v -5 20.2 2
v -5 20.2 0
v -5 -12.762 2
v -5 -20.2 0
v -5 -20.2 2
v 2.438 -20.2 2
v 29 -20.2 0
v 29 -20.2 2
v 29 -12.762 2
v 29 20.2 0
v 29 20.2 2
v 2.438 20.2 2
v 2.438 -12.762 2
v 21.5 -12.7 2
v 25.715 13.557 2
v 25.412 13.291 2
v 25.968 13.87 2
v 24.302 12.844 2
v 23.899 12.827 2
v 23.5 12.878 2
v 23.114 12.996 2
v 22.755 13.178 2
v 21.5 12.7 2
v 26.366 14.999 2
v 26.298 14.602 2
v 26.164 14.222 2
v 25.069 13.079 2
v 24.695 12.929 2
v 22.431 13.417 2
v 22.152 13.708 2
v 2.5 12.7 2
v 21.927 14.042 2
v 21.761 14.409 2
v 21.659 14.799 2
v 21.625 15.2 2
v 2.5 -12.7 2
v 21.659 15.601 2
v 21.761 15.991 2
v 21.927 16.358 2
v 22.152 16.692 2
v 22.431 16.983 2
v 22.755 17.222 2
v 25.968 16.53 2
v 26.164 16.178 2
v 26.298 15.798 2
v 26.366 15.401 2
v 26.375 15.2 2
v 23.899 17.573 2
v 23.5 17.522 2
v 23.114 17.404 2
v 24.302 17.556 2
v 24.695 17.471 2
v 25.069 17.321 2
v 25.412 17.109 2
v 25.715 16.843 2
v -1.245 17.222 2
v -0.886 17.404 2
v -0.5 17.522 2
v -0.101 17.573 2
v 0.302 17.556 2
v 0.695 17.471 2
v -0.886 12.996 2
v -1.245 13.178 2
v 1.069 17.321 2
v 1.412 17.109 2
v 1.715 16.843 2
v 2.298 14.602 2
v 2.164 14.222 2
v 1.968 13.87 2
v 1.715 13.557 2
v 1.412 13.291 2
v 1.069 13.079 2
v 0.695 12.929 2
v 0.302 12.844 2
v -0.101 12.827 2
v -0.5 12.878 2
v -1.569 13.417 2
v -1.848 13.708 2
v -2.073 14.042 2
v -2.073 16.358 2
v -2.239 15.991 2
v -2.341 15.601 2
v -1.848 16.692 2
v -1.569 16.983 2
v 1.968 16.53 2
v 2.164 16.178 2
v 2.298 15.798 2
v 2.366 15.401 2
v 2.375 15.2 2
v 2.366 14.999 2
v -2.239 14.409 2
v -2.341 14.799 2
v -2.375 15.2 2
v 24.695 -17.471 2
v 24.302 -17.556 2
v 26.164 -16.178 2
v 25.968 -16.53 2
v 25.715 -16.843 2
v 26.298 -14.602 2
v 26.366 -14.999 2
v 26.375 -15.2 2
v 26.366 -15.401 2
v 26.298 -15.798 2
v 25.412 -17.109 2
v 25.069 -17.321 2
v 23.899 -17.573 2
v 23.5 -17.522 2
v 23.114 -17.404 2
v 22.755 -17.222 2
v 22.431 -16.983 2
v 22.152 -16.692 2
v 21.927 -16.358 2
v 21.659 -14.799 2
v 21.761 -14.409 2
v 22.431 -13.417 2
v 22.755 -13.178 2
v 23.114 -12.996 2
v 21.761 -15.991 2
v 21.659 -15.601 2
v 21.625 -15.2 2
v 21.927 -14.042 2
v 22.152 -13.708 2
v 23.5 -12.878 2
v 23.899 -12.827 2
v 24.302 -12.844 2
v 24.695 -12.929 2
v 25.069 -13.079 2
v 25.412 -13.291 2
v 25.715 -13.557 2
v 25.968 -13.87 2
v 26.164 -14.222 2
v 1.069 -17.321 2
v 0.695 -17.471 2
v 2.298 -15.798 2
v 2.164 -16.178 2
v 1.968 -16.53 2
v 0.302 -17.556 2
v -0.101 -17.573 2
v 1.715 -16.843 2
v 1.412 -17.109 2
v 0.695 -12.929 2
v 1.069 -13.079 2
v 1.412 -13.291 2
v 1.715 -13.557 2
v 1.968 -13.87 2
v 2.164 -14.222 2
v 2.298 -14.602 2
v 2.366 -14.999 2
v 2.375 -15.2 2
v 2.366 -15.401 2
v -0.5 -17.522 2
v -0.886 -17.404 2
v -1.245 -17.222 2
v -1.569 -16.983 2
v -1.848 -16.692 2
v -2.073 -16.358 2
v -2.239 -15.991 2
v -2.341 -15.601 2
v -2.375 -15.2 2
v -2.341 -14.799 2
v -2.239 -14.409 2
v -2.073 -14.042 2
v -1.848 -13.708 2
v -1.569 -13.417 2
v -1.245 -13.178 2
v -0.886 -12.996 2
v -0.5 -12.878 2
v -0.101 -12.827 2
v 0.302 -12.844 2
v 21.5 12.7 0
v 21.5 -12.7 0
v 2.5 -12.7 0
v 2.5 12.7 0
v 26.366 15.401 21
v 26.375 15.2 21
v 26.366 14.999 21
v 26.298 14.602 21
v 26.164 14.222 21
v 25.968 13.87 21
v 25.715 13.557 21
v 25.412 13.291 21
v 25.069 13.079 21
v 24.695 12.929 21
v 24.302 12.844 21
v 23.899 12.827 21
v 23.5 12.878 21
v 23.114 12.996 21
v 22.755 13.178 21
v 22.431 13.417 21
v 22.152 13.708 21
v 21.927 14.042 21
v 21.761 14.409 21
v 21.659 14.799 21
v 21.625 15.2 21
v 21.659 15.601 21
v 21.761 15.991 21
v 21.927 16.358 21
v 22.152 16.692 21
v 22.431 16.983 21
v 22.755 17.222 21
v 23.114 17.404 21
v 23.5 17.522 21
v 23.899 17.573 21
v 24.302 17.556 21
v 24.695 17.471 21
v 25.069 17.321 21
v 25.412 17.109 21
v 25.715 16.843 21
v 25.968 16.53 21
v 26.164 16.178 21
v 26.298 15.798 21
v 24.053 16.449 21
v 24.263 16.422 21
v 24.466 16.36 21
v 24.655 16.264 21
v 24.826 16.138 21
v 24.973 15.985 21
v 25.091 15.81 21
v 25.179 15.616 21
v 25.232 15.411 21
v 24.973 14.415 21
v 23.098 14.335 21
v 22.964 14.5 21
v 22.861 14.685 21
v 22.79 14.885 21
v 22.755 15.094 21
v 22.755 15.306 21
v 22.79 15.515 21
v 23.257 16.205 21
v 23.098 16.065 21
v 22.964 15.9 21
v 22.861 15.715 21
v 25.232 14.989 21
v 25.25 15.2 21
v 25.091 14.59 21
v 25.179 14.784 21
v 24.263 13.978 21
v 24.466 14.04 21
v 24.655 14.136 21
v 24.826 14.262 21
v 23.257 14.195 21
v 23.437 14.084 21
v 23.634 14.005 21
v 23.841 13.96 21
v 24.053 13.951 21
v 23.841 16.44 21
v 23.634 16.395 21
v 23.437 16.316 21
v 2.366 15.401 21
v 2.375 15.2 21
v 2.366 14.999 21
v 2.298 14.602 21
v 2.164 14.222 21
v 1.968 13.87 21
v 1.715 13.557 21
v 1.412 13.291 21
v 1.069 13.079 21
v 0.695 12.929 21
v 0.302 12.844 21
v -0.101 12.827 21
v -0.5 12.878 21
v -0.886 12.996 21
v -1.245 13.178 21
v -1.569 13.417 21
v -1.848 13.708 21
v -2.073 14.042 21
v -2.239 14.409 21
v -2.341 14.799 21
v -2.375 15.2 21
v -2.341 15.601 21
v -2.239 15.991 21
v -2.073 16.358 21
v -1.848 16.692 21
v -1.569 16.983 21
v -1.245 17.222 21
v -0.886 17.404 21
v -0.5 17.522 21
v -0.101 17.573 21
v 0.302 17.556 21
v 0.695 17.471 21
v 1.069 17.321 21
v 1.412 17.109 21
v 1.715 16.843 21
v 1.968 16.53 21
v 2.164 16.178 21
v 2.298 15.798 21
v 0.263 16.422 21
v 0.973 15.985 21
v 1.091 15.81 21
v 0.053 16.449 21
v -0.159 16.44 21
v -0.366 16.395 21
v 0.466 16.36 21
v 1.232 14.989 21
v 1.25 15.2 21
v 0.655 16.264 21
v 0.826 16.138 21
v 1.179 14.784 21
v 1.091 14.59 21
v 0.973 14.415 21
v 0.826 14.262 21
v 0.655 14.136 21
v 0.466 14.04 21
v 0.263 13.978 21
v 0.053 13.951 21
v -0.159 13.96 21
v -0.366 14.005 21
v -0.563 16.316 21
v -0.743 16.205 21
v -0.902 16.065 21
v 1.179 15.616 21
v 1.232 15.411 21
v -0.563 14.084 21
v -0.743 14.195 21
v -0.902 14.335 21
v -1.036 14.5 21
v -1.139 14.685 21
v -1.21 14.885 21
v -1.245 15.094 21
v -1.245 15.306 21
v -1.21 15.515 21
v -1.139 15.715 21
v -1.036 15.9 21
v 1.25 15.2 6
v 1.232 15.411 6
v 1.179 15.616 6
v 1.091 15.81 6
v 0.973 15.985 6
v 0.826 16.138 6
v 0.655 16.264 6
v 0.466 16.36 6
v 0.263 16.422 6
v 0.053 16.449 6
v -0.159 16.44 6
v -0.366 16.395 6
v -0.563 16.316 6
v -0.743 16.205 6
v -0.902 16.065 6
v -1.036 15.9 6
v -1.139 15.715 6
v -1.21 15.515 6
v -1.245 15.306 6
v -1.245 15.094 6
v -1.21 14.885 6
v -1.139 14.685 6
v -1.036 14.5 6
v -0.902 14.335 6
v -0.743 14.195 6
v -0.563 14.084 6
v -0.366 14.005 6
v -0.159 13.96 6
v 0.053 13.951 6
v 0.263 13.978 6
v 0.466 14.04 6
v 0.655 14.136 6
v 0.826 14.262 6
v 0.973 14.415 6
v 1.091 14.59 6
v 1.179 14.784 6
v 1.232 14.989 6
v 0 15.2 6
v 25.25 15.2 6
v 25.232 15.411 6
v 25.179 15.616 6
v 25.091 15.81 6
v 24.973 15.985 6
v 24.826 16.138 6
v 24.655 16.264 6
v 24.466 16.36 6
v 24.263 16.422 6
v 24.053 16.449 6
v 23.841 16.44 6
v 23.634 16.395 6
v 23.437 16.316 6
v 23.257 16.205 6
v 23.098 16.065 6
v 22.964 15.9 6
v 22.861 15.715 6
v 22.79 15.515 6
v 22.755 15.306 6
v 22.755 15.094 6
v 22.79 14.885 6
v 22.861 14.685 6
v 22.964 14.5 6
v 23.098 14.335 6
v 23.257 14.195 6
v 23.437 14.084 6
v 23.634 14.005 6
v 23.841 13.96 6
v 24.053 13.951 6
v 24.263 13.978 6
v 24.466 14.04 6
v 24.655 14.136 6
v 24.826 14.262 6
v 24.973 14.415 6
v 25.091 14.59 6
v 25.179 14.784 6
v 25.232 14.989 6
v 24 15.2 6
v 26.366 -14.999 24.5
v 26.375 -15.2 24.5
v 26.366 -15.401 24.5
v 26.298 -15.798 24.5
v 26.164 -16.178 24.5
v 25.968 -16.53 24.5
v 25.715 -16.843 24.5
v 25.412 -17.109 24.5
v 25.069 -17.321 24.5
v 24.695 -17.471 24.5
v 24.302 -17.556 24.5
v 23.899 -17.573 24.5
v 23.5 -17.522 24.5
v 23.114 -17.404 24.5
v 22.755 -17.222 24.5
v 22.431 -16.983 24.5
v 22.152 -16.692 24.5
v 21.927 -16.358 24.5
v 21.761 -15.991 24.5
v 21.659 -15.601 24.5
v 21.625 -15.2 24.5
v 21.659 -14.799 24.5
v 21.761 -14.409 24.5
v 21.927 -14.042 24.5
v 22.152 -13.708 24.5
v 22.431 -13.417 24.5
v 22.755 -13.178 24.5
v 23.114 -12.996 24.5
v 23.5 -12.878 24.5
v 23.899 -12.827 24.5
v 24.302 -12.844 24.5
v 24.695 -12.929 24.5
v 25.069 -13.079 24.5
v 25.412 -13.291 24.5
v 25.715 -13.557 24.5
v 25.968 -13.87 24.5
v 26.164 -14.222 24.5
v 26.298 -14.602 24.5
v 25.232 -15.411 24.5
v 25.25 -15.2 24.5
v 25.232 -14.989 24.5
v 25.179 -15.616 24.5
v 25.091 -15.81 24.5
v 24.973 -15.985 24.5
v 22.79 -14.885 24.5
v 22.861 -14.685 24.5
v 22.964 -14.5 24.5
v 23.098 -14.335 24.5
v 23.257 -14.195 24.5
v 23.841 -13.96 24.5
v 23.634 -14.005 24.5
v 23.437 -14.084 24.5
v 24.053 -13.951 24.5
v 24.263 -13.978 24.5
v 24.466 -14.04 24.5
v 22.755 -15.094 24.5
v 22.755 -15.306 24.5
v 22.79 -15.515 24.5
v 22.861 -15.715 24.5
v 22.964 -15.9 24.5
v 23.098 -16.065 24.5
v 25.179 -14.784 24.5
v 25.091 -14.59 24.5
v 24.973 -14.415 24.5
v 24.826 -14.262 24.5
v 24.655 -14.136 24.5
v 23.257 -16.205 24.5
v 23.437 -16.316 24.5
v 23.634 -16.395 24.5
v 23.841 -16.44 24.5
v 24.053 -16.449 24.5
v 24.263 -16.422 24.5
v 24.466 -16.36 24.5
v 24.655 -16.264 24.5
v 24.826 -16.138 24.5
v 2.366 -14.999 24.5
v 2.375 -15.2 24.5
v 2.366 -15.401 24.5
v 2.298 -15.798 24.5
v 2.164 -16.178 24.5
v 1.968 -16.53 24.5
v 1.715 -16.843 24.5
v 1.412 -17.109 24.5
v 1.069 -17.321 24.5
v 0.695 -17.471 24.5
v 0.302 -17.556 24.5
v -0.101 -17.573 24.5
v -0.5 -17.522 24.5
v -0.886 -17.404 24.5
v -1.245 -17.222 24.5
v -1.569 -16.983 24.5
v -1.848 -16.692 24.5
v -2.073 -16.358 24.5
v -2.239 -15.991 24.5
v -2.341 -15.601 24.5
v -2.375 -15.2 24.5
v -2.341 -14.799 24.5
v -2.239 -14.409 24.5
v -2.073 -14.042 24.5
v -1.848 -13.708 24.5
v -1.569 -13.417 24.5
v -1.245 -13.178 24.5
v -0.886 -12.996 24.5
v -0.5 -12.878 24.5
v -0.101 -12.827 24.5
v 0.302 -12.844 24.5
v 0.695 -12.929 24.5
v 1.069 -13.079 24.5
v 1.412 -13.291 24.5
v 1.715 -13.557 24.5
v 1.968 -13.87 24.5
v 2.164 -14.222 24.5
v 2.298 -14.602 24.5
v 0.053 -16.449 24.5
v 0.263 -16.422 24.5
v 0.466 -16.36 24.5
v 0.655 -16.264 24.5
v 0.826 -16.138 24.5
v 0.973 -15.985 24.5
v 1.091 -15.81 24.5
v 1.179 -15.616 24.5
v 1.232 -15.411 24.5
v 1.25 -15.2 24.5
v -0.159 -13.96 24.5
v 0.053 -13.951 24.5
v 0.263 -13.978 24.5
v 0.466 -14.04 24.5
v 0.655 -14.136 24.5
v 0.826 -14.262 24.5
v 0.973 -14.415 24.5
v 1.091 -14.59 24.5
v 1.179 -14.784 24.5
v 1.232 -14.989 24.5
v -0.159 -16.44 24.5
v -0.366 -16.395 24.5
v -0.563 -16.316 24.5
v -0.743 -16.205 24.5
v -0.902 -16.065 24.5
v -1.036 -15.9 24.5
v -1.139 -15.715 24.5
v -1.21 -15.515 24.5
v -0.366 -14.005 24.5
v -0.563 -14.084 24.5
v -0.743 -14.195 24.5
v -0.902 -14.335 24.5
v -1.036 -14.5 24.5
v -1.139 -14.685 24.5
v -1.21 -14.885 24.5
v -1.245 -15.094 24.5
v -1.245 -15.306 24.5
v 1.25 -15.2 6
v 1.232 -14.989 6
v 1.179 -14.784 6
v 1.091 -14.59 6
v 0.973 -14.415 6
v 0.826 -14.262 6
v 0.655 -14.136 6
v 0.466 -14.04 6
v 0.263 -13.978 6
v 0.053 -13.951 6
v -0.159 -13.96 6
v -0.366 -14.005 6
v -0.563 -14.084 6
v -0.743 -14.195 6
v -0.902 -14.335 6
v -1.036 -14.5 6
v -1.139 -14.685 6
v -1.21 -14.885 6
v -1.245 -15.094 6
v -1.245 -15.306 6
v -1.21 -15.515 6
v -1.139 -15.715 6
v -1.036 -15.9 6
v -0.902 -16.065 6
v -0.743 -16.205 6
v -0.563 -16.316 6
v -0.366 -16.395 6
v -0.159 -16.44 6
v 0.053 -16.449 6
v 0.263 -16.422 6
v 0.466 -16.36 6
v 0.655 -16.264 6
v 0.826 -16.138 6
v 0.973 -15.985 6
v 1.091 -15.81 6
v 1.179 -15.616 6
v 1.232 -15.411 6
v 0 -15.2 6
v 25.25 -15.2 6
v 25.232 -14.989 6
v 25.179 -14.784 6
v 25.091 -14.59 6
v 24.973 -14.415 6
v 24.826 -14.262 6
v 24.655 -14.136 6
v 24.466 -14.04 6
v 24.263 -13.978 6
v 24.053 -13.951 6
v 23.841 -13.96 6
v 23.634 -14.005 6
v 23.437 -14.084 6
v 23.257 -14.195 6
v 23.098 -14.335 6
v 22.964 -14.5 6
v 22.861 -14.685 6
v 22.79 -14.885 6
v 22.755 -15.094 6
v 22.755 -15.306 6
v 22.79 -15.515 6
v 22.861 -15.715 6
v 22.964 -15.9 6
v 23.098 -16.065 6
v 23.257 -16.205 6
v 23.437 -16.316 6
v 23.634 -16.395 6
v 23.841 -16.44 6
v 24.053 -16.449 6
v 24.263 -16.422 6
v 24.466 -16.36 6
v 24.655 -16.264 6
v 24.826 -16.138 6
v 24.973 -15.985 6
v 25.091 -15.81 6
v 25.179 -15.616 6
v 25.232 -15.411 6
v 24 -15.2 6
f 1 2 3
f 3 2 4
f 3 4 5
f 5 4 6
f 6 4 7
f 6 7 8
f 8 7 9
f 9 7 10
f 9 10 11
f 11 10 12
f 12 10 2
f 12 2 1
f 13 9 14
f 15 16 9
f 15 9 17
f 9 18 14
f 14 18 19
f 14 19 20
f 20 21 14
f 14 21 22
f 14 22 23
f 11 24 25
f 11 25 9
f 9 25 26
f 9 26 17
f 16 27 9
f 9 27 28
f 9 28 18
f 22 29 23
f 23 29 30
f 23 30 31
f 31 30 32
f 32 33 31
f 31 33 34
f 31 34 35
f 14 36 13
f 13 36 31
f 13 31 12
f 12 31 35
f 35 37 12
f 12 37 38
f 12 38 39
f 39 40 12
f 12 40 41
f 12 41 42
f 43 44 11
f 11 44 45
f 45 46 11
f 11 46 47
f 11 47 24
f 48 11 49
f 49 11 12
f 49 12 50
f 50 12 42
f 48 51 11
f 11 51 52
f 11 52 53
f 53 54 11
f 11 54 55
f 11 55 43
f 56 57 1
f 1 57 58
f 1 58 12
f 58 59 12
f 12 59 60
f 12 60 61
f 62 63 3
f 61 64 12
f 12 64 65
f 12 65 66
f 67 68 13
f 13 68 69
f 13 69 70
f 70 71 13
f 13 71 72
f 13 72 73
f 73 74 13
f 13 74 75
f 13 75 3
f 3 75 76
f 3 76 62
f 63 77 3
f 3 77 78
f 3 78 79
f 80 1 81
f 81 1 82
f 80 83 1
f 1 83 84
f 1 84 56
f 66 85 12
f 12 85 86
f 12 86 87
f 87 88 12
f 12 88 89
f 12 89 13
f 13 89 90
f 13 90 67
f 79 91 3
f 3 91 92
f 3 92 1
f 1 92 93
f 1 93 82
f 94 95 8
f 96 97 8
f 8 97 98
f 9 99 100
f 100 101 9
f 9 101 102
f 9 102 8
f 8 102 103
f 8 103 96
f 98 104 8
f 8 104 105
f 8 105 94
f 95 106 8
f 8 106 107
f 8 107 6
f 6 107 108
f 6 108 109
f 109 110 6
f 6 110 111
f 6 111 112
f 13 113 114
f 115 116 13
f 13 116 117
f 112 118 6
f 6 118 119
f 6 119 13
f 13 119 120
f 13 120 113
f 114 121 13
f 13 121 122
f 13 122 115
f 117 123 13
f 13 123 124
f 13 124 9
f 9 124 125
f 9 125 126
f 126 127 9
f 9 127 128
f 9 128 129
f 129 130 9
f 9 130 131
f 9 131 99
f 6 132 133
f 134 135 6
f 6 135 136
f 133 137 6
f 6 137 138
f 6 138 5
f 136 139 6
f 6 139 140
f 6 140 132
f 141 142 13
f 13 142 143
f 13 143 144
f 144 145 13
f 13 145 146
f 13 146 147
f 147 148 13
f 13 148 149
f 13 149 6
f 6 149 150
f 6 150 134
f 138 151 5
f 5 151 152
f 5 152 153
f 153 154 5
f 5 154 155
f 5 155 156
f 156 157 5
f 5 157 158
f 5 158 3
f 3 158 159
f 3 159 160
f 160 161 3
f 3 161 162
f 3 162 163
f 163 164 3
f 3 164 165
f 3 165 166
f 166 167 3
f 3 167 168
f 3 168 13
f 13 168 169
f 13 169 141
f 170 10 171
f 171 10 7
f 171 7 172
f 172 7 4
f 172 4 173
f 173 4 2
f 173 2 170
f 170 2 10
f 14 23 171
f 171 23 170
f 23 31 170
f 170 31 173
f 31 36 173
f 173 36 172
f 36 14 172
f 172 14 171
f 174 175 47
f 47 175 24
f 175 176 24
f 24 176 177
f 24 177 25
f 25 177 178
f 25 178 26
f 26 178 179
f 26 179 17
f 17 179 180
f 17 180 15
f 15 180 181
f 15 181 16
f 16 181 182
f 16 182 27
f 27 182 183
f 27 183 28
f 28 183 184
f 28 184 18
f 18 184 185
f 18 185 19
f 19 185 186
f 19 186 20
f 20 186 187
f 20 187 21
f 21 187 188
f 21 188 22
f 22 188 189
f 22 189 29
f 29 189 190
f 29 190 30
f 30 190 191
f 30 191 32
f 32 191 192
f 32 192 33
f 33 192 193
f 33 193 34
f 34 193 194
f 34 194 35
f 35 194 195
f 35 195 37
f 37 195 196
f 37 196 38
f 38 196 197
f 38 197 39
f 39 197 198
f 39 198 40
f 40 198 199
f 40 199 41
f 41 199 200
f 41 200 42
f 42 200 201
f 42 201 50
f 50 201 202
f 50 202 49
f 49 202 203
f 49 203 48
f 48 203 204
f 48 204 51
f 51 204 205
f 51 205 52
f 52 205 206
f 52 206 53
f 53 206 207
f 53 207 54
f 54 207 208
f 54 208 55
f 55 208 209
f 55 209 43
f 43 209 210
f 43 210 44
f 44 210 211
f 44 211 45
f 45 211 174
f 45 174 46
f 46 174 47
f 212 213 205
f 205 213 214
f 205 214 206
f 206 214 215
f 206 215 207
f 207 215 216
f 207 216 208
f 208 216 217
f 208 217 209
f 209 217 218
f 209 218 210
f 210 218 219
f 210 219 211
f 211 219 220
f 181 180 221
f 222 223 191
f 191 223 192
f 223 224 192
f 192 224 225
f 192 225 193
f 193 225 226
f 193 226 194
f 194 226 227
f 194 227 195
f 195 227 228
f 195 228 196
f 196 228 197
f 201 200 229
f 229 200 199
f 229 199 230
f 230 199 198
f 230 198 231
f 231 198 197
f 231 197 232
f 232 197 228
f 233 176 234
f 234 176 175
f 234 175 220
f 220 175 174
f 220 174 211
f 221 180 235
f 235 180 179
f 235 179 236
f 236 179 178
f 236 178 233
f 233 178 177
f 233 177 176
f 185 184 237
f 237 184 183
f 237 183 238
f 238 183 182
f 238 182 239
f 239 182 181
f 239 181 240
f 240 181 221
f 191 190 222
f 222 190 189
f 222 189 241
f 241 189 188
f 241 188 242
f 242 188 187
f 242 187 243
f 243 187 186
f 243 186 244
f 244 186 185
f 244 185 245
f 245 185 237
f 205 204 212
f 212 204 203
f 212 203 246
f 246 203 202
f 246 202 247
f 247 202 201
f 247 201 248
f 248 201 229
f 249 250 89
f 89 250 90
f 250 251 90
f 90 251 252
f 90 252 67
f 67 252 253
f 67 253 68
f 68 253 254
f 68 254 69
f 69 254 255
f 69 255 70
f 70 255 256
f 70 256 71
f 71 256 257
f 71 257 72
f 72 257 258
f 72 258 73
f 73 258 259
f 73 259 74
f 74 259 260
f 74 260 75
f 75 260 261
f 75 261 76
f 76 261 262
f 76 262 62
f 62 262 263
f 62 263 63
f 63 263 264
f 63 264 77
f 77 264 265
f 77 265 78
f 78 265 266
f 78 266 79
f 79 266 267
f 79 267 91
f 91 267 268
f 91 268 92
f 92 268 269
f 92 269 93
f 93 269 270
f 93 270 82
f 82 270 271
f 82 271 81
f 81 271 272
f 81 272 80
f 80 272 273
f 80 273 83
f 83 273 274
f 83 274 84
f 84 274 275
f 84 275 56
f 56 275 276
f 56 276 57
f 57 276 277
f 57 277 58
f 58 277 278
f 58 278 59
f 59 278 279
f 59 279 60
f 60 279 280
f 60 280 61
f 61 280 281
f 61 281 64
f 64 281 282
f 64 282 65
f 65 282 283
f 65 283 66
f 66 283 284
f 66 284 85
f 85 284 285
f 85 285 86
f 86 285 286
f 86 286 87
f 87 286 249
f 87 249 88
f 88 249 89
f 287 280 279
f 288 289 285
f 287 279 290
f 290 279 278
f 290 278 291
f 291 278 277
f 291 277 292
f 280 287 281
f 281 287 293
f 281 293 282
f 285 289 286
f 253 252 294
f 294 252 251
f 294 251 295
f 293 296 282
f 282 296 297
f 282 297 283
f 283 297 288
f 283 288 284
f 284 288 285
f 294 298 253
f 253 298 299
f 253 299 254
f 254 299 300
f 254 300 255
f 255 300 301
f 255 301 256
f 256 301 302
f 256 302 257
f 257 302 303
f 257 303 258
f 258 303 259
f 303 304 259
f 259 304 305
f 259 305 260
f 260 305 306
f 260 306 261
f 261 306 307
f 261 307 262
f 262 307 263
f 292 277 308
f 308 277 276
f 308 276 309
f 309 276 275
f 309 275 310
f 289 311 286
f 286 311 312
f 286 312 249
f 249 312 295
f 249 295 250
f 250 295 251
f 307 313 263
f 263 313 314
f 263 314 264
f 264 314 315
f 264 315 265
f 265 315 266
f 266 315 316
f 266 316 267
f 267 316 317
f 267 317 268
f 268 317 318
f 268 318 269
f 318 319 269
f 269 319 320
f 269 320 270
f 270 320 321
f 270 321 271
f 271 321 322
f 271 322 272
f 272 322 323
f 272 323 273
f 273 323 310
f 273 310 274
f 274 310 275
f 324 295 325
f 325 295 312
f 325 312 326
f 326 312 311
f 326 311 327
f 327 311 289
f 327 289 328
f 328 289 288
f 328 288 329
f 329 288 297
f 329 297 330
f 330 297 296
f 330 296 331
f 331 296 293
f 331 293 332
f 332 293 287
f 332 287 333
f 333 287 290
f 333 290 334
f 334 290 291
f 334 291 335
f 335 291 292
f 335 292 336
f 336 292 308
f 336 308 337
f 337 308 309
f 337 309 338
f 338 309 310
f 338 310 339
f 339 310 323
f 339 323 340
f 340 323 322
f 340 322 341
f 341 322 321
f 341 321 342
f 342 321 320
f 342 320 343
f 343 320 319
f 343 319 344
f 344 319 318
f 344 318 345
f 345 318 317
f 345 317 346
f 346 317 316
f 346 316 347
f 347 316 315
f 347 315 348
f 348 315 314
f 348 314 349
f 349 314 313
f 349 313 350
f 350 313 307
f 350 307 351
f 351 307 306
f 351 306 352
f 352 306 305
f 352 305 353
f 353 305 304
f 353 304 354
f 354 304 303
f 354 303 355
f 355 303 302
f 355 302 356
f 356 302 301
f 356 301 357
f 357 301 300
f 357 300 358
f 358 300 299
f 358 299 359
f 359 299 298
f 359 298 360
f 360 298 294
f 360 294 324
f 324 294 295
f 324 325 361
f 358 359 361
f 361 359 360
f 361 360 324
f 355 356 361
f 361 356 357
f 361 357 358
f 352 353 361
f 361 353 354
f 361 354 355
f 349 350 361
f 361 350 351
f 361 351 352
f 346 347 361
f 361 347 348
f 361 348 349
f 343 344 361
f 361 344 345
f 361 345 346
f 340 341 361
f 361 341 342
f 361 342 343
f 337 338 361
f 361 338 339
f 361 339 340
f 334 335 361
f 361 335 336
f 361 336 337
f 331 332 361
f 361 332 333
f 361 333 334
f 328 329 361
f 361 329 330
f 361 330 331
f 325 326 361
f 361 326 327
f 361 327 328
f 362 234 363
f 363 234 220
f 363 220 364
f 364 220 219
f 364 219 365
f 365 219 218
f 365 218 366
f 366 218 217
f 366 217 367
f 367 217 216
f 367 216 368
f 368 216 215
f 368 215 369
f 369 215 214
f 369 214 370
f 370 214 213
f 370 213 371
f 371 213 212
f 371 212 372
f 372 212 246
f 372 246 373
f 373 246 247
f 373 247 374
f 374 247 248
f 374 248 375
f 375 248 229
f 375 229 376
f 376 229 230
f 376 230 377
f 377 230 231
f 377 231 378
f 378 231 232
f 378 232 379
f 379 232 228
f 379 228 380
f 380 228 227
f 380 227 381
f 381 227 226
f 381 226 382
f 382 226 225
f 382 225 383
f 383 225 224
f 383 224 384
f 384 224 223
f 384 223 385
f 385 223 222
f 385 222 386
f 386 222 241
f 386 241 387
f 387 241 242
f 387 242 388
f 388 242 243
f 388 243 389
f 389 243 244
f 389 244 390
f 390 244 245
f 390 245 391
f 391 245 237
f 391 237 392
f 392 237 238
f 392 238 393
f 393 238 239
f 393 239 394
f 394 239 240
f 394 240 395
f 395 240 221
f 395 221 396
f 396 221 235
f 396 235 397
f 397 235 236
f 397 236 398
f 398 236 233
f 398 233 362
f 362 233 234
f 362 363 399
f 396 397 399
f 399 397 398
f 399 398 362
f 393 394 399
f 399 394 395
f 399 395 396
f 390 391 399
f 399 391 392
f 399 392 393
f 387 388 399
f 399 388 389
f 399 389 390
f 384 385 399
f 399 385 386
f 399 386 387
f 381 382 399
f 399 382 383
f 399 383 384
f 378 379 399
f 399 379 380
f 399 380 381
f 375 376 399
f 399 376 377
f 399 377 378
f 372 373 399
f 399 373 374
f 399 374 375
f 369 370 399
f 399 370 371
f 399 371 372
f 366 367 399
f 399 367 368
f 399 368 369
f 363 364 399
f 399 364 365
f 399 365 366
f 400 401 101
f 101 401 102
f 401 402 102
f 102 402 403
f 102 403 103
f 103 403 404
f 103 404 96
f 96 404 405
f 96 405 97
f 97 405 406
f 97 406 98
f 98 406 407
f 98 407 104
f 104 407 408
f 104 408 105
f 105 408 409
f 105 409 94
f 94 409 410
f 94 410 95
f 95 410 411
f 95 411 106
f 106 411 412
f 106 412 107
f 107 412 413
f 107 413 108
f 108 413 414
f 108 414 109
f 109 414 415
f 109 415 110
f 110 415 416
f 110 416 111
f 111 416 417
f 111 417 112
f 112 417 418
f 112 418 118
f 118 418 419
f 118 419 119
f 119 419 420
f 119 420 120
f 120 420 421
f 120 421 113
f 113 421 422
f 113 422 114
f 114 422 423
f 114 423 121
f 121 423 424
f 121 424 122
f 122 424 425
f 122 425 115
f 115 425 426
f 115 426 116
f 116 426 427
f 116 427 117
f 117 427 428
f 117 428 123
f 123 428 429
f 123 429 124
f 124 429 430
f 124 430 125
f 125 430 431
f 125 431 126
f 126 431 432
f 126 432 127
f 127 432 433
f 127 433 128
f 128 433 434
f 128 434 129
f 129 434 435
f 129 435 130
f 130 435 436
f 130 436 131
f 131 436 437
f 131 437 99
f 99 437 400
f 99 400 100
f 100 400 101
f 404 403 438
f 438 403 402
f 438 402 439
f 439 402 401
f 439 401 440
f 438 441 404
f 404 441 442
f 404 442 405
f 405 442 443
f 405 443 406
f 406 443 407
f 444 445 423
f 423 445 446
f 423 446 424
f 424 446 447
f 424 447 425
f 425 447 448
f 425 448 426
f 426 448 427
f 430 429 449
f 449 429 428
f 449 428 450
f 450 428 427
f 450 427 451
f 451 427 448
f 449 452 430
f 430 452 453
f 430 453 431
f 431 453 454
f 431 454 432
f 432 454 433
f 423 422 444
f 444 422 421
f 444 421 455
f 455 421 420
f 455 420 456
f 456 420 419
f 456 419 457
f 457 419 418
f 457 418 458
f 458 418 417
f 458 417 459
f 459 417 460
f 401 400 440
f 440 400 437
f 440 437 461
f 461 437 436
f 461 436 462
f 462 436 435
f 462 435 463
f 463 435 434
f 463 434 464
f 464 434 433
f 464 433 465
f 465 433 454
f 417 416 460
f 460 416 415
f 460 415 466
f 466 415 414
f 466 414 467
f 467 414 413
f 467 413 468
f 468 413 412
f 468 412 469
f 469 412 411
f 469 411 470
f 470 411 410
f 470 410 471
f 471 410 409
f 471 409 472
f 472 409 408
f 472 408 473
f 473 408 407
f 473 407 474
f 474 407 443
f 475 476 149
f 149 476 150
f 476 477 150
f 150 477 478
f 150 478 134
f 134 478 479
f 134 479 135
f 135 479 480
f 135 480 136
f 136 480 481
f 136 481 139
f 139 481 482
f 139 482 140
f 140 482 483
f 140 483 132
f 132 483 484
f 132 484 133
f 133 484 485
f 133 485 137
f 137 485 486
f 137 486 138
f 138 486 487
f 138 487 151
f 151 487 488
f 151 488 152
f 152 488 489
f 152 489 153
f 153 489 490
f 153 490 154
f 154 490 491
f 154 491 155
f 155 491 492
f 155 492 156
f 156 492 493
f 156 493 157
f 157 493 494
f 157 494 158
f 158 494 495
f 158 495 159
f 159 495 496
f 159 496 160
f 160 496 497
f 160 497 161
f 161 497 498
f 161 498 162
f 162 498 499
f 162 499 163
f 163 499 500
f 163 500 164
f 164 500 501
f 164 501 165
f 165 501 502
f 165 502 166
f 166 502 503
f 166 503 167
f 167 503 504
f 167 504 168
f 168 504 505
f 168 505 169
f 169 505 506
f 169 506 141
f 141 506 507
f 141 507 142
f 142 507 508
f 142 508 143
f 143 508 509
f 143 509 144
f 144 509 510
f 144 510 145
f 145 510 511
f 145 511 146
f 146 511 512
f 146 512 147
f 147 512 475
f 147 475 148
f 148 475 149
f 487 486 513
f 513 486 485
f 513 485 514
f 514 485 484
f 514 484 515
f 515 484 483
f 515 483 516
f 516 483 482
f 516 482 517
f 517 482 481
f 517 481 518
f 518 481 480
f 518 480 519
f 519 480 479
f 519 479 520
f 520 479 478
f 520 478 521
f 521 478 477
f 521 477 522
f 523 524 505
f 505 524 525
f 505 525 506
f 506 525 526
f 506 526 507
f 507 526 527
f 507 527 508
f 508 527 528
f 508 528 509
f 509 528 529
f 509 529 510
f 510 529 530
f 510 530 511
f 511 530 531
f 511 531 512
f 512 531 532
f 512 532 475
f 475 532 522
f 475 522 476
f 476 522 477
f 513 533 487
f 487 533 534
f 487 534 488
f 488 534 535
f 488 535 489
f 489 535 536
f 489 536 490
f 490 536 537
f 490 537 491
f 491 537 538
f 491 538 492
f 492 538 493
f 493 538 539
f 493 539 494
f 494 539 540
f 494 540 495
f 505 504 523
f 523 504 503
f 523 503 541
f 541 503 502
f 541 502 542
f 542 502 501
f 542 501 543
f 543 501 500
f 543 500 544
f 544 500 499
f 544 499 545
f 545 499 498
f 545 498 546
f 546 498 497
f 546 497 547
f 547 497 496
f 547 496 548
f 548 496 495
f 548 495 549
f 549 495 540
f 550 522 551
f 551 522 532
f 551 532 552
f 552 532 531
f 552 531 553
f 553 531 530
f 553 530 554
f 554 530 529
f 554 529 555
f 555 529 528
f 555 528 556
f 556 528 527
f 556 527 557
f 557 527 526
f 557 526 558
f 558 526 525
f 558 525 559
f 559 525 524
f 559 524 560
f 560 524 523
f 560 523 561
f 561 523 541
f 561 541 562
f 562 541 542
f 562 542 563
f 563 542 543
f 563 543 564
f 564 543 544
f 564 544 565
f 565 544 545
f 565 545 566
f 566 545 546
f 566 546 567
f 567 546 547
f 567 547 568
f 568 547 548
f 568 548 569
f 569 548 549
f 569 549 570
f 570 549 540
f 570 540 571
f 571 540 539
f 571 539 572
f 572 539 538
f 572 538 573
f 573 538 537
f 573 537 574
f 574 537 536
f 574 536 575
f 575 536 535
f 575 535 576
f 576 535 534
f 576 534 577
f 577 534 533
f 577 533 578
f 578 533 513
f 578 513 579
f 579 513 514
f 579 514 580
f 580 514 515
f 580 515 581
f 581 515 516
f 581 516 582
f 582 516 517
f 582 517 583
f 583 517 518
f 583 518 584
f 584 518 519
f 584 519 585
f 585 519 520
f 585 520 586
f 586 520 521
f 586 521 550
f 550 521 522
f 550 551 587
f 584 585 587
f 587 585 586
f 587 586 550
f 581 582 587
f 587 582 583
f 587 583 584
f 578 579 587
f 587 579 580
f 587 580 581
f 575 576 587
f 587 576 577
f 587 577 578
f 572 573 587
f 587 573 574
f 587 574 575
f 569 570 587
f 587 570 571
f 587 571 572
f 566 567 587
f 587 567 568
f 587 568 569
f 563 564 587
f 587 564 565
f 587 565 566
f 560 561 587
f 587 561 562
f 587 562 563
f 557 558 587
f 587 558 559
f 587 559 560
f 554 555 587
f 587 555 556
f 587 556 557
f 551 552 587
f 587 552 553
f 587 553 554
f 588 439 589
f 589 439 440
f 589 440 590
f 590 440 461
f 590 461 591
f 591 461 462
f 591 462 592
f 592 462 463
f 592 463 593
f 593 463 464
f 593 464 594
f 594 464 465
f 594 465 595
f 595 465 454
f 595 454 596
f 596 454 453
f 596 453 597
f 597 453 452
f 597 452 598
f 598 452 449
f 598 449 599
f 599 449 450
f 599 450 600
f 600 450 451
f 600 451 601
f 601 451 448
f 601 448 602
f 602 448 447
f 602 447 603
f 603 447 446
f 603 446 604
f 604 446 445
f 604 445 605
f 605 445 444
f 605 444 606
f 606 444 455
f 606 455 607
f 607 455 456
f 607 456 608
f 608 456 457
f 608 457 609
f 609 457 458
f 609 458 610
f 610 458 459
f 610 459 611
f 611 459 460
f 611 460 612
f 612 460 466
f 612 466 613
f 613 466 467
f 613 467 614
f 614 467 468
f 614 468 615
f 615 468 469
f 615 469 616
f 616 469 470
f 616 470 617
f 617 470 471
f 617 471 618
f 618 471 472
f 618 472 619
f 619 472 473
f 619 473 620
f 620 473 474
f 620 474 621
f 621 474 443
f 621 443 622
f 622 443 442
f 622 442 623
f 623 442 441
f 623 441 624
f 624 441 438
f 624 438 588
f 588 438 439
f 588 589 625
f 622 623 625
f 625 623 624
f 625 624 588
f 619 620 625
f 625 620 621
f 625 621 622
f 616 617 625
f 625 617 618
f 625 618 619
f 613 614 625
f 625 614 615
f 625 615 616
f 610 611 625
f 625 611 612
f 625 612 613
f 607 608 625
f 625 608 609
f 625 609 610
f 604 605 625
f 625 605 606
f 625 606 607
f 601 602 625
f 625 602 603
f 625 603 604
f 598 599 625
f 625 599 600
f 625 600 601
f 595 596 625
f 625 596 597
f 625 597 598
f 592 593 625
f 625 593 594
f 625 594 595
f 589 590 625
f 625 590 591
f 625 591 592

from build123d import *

# Parameters (mm, degrees)
SKETCH1_W           = 34
SKETCH1_H           = 40.4
SKETCH1_W_2         = 19
SKETCH1_H_2         = 25.4
BOSS_EXTRUDE1_DEPTH = 2
SKETCH1_3_R         = 2.375
BOSS_EXTRUDE2_DEPTH = 21
CUT_EXTRUDE1_START  = 21
SKETCH1_4_R         = 1.25
CUT_EXTRUDE1_DEPTH  = 15
SKETCH1_6_R         = 2.375
BOSS_EXTRUDE3_DEPTH = 24.5
CUT_EXTRUDE2_START  = 24.5
SKETCH1_8_R         = 1.25
CUT_EXTRUDE2_DEPTH  = 18.5


with BuildPart() as part:
    # Sketch1 → Boss-Extrude1 (new body)
    with BuildSketch(Plane.XY):
        with Locations((12, 0)):
            Rectangle(SKETCH1_W, SKETCH1_H)
        with Locations((12, 0)):
            Rectangle(SKETCH1_W_2, SKETCH1_H_2, mode=Mode.SUBTRACT)
    extrude(amount=BOSS_EXTRUDE1_DEPTH)

    # Sketch1<3> → Boss-Extrude2 (add)
    with BuildSketch(Plane.XY):
        with Locations((0, 15.2)):
            Circle(SKETCH1_3_R)
        with Locations((24, 15.2)):
            Circle(SKETCH1_3_R)
    extrude(amount=BOSS_EXTRUDE2_DEPTH)

    # Sketch1<4> → Cut-Extrude1 (cut)
    with BuildSketch(Plane.XY.offset(CUT_EXTRUDE1_START)):
        with Locations((0, 15.2)):
            Circle(SKETCH1_4_R)
        with Locations((24, 15.2)):
            Circle(SKETCH1_4_R)
        with Locations((24, -15.2)):
            Circle(SKETCH1_4_R)
        with Locations((0, -15.2)):
            Circle(SKETCH1_4_R)
    extrude(amount=-CUT_EXTRUDE1_DEPTH, mode=Mode.SUBTRACT)

    # Sketch1<6> → Boss-Extrude3 (add)
    with BuildSketch(Plane.XY):
        with Locations((24, -15.2)):
            Circle(SKETCH1_6_R)
        with Locations((0, -15.2)):
            Circle(SKETCH1_6_R)
    extrude(amount=BOSS_EXTRUDE3_DEPTH)

    # Sketch1<8> → Cut-Extrude2 (cut)
    with BuildSketch(Plane.XY.offset(CUT_EXTRUDE2_START)):
        with Locations((0, -15.2)):
            Circle(SKETCH1_8_R)
        with Locations((24, -15.2)):
            Circle(SKETCH1_8_R)
    extrude(amount=-CUT_EXTRUDE2_DEPTH, mode=Mode.SUBTRACT)


solid = part.part
